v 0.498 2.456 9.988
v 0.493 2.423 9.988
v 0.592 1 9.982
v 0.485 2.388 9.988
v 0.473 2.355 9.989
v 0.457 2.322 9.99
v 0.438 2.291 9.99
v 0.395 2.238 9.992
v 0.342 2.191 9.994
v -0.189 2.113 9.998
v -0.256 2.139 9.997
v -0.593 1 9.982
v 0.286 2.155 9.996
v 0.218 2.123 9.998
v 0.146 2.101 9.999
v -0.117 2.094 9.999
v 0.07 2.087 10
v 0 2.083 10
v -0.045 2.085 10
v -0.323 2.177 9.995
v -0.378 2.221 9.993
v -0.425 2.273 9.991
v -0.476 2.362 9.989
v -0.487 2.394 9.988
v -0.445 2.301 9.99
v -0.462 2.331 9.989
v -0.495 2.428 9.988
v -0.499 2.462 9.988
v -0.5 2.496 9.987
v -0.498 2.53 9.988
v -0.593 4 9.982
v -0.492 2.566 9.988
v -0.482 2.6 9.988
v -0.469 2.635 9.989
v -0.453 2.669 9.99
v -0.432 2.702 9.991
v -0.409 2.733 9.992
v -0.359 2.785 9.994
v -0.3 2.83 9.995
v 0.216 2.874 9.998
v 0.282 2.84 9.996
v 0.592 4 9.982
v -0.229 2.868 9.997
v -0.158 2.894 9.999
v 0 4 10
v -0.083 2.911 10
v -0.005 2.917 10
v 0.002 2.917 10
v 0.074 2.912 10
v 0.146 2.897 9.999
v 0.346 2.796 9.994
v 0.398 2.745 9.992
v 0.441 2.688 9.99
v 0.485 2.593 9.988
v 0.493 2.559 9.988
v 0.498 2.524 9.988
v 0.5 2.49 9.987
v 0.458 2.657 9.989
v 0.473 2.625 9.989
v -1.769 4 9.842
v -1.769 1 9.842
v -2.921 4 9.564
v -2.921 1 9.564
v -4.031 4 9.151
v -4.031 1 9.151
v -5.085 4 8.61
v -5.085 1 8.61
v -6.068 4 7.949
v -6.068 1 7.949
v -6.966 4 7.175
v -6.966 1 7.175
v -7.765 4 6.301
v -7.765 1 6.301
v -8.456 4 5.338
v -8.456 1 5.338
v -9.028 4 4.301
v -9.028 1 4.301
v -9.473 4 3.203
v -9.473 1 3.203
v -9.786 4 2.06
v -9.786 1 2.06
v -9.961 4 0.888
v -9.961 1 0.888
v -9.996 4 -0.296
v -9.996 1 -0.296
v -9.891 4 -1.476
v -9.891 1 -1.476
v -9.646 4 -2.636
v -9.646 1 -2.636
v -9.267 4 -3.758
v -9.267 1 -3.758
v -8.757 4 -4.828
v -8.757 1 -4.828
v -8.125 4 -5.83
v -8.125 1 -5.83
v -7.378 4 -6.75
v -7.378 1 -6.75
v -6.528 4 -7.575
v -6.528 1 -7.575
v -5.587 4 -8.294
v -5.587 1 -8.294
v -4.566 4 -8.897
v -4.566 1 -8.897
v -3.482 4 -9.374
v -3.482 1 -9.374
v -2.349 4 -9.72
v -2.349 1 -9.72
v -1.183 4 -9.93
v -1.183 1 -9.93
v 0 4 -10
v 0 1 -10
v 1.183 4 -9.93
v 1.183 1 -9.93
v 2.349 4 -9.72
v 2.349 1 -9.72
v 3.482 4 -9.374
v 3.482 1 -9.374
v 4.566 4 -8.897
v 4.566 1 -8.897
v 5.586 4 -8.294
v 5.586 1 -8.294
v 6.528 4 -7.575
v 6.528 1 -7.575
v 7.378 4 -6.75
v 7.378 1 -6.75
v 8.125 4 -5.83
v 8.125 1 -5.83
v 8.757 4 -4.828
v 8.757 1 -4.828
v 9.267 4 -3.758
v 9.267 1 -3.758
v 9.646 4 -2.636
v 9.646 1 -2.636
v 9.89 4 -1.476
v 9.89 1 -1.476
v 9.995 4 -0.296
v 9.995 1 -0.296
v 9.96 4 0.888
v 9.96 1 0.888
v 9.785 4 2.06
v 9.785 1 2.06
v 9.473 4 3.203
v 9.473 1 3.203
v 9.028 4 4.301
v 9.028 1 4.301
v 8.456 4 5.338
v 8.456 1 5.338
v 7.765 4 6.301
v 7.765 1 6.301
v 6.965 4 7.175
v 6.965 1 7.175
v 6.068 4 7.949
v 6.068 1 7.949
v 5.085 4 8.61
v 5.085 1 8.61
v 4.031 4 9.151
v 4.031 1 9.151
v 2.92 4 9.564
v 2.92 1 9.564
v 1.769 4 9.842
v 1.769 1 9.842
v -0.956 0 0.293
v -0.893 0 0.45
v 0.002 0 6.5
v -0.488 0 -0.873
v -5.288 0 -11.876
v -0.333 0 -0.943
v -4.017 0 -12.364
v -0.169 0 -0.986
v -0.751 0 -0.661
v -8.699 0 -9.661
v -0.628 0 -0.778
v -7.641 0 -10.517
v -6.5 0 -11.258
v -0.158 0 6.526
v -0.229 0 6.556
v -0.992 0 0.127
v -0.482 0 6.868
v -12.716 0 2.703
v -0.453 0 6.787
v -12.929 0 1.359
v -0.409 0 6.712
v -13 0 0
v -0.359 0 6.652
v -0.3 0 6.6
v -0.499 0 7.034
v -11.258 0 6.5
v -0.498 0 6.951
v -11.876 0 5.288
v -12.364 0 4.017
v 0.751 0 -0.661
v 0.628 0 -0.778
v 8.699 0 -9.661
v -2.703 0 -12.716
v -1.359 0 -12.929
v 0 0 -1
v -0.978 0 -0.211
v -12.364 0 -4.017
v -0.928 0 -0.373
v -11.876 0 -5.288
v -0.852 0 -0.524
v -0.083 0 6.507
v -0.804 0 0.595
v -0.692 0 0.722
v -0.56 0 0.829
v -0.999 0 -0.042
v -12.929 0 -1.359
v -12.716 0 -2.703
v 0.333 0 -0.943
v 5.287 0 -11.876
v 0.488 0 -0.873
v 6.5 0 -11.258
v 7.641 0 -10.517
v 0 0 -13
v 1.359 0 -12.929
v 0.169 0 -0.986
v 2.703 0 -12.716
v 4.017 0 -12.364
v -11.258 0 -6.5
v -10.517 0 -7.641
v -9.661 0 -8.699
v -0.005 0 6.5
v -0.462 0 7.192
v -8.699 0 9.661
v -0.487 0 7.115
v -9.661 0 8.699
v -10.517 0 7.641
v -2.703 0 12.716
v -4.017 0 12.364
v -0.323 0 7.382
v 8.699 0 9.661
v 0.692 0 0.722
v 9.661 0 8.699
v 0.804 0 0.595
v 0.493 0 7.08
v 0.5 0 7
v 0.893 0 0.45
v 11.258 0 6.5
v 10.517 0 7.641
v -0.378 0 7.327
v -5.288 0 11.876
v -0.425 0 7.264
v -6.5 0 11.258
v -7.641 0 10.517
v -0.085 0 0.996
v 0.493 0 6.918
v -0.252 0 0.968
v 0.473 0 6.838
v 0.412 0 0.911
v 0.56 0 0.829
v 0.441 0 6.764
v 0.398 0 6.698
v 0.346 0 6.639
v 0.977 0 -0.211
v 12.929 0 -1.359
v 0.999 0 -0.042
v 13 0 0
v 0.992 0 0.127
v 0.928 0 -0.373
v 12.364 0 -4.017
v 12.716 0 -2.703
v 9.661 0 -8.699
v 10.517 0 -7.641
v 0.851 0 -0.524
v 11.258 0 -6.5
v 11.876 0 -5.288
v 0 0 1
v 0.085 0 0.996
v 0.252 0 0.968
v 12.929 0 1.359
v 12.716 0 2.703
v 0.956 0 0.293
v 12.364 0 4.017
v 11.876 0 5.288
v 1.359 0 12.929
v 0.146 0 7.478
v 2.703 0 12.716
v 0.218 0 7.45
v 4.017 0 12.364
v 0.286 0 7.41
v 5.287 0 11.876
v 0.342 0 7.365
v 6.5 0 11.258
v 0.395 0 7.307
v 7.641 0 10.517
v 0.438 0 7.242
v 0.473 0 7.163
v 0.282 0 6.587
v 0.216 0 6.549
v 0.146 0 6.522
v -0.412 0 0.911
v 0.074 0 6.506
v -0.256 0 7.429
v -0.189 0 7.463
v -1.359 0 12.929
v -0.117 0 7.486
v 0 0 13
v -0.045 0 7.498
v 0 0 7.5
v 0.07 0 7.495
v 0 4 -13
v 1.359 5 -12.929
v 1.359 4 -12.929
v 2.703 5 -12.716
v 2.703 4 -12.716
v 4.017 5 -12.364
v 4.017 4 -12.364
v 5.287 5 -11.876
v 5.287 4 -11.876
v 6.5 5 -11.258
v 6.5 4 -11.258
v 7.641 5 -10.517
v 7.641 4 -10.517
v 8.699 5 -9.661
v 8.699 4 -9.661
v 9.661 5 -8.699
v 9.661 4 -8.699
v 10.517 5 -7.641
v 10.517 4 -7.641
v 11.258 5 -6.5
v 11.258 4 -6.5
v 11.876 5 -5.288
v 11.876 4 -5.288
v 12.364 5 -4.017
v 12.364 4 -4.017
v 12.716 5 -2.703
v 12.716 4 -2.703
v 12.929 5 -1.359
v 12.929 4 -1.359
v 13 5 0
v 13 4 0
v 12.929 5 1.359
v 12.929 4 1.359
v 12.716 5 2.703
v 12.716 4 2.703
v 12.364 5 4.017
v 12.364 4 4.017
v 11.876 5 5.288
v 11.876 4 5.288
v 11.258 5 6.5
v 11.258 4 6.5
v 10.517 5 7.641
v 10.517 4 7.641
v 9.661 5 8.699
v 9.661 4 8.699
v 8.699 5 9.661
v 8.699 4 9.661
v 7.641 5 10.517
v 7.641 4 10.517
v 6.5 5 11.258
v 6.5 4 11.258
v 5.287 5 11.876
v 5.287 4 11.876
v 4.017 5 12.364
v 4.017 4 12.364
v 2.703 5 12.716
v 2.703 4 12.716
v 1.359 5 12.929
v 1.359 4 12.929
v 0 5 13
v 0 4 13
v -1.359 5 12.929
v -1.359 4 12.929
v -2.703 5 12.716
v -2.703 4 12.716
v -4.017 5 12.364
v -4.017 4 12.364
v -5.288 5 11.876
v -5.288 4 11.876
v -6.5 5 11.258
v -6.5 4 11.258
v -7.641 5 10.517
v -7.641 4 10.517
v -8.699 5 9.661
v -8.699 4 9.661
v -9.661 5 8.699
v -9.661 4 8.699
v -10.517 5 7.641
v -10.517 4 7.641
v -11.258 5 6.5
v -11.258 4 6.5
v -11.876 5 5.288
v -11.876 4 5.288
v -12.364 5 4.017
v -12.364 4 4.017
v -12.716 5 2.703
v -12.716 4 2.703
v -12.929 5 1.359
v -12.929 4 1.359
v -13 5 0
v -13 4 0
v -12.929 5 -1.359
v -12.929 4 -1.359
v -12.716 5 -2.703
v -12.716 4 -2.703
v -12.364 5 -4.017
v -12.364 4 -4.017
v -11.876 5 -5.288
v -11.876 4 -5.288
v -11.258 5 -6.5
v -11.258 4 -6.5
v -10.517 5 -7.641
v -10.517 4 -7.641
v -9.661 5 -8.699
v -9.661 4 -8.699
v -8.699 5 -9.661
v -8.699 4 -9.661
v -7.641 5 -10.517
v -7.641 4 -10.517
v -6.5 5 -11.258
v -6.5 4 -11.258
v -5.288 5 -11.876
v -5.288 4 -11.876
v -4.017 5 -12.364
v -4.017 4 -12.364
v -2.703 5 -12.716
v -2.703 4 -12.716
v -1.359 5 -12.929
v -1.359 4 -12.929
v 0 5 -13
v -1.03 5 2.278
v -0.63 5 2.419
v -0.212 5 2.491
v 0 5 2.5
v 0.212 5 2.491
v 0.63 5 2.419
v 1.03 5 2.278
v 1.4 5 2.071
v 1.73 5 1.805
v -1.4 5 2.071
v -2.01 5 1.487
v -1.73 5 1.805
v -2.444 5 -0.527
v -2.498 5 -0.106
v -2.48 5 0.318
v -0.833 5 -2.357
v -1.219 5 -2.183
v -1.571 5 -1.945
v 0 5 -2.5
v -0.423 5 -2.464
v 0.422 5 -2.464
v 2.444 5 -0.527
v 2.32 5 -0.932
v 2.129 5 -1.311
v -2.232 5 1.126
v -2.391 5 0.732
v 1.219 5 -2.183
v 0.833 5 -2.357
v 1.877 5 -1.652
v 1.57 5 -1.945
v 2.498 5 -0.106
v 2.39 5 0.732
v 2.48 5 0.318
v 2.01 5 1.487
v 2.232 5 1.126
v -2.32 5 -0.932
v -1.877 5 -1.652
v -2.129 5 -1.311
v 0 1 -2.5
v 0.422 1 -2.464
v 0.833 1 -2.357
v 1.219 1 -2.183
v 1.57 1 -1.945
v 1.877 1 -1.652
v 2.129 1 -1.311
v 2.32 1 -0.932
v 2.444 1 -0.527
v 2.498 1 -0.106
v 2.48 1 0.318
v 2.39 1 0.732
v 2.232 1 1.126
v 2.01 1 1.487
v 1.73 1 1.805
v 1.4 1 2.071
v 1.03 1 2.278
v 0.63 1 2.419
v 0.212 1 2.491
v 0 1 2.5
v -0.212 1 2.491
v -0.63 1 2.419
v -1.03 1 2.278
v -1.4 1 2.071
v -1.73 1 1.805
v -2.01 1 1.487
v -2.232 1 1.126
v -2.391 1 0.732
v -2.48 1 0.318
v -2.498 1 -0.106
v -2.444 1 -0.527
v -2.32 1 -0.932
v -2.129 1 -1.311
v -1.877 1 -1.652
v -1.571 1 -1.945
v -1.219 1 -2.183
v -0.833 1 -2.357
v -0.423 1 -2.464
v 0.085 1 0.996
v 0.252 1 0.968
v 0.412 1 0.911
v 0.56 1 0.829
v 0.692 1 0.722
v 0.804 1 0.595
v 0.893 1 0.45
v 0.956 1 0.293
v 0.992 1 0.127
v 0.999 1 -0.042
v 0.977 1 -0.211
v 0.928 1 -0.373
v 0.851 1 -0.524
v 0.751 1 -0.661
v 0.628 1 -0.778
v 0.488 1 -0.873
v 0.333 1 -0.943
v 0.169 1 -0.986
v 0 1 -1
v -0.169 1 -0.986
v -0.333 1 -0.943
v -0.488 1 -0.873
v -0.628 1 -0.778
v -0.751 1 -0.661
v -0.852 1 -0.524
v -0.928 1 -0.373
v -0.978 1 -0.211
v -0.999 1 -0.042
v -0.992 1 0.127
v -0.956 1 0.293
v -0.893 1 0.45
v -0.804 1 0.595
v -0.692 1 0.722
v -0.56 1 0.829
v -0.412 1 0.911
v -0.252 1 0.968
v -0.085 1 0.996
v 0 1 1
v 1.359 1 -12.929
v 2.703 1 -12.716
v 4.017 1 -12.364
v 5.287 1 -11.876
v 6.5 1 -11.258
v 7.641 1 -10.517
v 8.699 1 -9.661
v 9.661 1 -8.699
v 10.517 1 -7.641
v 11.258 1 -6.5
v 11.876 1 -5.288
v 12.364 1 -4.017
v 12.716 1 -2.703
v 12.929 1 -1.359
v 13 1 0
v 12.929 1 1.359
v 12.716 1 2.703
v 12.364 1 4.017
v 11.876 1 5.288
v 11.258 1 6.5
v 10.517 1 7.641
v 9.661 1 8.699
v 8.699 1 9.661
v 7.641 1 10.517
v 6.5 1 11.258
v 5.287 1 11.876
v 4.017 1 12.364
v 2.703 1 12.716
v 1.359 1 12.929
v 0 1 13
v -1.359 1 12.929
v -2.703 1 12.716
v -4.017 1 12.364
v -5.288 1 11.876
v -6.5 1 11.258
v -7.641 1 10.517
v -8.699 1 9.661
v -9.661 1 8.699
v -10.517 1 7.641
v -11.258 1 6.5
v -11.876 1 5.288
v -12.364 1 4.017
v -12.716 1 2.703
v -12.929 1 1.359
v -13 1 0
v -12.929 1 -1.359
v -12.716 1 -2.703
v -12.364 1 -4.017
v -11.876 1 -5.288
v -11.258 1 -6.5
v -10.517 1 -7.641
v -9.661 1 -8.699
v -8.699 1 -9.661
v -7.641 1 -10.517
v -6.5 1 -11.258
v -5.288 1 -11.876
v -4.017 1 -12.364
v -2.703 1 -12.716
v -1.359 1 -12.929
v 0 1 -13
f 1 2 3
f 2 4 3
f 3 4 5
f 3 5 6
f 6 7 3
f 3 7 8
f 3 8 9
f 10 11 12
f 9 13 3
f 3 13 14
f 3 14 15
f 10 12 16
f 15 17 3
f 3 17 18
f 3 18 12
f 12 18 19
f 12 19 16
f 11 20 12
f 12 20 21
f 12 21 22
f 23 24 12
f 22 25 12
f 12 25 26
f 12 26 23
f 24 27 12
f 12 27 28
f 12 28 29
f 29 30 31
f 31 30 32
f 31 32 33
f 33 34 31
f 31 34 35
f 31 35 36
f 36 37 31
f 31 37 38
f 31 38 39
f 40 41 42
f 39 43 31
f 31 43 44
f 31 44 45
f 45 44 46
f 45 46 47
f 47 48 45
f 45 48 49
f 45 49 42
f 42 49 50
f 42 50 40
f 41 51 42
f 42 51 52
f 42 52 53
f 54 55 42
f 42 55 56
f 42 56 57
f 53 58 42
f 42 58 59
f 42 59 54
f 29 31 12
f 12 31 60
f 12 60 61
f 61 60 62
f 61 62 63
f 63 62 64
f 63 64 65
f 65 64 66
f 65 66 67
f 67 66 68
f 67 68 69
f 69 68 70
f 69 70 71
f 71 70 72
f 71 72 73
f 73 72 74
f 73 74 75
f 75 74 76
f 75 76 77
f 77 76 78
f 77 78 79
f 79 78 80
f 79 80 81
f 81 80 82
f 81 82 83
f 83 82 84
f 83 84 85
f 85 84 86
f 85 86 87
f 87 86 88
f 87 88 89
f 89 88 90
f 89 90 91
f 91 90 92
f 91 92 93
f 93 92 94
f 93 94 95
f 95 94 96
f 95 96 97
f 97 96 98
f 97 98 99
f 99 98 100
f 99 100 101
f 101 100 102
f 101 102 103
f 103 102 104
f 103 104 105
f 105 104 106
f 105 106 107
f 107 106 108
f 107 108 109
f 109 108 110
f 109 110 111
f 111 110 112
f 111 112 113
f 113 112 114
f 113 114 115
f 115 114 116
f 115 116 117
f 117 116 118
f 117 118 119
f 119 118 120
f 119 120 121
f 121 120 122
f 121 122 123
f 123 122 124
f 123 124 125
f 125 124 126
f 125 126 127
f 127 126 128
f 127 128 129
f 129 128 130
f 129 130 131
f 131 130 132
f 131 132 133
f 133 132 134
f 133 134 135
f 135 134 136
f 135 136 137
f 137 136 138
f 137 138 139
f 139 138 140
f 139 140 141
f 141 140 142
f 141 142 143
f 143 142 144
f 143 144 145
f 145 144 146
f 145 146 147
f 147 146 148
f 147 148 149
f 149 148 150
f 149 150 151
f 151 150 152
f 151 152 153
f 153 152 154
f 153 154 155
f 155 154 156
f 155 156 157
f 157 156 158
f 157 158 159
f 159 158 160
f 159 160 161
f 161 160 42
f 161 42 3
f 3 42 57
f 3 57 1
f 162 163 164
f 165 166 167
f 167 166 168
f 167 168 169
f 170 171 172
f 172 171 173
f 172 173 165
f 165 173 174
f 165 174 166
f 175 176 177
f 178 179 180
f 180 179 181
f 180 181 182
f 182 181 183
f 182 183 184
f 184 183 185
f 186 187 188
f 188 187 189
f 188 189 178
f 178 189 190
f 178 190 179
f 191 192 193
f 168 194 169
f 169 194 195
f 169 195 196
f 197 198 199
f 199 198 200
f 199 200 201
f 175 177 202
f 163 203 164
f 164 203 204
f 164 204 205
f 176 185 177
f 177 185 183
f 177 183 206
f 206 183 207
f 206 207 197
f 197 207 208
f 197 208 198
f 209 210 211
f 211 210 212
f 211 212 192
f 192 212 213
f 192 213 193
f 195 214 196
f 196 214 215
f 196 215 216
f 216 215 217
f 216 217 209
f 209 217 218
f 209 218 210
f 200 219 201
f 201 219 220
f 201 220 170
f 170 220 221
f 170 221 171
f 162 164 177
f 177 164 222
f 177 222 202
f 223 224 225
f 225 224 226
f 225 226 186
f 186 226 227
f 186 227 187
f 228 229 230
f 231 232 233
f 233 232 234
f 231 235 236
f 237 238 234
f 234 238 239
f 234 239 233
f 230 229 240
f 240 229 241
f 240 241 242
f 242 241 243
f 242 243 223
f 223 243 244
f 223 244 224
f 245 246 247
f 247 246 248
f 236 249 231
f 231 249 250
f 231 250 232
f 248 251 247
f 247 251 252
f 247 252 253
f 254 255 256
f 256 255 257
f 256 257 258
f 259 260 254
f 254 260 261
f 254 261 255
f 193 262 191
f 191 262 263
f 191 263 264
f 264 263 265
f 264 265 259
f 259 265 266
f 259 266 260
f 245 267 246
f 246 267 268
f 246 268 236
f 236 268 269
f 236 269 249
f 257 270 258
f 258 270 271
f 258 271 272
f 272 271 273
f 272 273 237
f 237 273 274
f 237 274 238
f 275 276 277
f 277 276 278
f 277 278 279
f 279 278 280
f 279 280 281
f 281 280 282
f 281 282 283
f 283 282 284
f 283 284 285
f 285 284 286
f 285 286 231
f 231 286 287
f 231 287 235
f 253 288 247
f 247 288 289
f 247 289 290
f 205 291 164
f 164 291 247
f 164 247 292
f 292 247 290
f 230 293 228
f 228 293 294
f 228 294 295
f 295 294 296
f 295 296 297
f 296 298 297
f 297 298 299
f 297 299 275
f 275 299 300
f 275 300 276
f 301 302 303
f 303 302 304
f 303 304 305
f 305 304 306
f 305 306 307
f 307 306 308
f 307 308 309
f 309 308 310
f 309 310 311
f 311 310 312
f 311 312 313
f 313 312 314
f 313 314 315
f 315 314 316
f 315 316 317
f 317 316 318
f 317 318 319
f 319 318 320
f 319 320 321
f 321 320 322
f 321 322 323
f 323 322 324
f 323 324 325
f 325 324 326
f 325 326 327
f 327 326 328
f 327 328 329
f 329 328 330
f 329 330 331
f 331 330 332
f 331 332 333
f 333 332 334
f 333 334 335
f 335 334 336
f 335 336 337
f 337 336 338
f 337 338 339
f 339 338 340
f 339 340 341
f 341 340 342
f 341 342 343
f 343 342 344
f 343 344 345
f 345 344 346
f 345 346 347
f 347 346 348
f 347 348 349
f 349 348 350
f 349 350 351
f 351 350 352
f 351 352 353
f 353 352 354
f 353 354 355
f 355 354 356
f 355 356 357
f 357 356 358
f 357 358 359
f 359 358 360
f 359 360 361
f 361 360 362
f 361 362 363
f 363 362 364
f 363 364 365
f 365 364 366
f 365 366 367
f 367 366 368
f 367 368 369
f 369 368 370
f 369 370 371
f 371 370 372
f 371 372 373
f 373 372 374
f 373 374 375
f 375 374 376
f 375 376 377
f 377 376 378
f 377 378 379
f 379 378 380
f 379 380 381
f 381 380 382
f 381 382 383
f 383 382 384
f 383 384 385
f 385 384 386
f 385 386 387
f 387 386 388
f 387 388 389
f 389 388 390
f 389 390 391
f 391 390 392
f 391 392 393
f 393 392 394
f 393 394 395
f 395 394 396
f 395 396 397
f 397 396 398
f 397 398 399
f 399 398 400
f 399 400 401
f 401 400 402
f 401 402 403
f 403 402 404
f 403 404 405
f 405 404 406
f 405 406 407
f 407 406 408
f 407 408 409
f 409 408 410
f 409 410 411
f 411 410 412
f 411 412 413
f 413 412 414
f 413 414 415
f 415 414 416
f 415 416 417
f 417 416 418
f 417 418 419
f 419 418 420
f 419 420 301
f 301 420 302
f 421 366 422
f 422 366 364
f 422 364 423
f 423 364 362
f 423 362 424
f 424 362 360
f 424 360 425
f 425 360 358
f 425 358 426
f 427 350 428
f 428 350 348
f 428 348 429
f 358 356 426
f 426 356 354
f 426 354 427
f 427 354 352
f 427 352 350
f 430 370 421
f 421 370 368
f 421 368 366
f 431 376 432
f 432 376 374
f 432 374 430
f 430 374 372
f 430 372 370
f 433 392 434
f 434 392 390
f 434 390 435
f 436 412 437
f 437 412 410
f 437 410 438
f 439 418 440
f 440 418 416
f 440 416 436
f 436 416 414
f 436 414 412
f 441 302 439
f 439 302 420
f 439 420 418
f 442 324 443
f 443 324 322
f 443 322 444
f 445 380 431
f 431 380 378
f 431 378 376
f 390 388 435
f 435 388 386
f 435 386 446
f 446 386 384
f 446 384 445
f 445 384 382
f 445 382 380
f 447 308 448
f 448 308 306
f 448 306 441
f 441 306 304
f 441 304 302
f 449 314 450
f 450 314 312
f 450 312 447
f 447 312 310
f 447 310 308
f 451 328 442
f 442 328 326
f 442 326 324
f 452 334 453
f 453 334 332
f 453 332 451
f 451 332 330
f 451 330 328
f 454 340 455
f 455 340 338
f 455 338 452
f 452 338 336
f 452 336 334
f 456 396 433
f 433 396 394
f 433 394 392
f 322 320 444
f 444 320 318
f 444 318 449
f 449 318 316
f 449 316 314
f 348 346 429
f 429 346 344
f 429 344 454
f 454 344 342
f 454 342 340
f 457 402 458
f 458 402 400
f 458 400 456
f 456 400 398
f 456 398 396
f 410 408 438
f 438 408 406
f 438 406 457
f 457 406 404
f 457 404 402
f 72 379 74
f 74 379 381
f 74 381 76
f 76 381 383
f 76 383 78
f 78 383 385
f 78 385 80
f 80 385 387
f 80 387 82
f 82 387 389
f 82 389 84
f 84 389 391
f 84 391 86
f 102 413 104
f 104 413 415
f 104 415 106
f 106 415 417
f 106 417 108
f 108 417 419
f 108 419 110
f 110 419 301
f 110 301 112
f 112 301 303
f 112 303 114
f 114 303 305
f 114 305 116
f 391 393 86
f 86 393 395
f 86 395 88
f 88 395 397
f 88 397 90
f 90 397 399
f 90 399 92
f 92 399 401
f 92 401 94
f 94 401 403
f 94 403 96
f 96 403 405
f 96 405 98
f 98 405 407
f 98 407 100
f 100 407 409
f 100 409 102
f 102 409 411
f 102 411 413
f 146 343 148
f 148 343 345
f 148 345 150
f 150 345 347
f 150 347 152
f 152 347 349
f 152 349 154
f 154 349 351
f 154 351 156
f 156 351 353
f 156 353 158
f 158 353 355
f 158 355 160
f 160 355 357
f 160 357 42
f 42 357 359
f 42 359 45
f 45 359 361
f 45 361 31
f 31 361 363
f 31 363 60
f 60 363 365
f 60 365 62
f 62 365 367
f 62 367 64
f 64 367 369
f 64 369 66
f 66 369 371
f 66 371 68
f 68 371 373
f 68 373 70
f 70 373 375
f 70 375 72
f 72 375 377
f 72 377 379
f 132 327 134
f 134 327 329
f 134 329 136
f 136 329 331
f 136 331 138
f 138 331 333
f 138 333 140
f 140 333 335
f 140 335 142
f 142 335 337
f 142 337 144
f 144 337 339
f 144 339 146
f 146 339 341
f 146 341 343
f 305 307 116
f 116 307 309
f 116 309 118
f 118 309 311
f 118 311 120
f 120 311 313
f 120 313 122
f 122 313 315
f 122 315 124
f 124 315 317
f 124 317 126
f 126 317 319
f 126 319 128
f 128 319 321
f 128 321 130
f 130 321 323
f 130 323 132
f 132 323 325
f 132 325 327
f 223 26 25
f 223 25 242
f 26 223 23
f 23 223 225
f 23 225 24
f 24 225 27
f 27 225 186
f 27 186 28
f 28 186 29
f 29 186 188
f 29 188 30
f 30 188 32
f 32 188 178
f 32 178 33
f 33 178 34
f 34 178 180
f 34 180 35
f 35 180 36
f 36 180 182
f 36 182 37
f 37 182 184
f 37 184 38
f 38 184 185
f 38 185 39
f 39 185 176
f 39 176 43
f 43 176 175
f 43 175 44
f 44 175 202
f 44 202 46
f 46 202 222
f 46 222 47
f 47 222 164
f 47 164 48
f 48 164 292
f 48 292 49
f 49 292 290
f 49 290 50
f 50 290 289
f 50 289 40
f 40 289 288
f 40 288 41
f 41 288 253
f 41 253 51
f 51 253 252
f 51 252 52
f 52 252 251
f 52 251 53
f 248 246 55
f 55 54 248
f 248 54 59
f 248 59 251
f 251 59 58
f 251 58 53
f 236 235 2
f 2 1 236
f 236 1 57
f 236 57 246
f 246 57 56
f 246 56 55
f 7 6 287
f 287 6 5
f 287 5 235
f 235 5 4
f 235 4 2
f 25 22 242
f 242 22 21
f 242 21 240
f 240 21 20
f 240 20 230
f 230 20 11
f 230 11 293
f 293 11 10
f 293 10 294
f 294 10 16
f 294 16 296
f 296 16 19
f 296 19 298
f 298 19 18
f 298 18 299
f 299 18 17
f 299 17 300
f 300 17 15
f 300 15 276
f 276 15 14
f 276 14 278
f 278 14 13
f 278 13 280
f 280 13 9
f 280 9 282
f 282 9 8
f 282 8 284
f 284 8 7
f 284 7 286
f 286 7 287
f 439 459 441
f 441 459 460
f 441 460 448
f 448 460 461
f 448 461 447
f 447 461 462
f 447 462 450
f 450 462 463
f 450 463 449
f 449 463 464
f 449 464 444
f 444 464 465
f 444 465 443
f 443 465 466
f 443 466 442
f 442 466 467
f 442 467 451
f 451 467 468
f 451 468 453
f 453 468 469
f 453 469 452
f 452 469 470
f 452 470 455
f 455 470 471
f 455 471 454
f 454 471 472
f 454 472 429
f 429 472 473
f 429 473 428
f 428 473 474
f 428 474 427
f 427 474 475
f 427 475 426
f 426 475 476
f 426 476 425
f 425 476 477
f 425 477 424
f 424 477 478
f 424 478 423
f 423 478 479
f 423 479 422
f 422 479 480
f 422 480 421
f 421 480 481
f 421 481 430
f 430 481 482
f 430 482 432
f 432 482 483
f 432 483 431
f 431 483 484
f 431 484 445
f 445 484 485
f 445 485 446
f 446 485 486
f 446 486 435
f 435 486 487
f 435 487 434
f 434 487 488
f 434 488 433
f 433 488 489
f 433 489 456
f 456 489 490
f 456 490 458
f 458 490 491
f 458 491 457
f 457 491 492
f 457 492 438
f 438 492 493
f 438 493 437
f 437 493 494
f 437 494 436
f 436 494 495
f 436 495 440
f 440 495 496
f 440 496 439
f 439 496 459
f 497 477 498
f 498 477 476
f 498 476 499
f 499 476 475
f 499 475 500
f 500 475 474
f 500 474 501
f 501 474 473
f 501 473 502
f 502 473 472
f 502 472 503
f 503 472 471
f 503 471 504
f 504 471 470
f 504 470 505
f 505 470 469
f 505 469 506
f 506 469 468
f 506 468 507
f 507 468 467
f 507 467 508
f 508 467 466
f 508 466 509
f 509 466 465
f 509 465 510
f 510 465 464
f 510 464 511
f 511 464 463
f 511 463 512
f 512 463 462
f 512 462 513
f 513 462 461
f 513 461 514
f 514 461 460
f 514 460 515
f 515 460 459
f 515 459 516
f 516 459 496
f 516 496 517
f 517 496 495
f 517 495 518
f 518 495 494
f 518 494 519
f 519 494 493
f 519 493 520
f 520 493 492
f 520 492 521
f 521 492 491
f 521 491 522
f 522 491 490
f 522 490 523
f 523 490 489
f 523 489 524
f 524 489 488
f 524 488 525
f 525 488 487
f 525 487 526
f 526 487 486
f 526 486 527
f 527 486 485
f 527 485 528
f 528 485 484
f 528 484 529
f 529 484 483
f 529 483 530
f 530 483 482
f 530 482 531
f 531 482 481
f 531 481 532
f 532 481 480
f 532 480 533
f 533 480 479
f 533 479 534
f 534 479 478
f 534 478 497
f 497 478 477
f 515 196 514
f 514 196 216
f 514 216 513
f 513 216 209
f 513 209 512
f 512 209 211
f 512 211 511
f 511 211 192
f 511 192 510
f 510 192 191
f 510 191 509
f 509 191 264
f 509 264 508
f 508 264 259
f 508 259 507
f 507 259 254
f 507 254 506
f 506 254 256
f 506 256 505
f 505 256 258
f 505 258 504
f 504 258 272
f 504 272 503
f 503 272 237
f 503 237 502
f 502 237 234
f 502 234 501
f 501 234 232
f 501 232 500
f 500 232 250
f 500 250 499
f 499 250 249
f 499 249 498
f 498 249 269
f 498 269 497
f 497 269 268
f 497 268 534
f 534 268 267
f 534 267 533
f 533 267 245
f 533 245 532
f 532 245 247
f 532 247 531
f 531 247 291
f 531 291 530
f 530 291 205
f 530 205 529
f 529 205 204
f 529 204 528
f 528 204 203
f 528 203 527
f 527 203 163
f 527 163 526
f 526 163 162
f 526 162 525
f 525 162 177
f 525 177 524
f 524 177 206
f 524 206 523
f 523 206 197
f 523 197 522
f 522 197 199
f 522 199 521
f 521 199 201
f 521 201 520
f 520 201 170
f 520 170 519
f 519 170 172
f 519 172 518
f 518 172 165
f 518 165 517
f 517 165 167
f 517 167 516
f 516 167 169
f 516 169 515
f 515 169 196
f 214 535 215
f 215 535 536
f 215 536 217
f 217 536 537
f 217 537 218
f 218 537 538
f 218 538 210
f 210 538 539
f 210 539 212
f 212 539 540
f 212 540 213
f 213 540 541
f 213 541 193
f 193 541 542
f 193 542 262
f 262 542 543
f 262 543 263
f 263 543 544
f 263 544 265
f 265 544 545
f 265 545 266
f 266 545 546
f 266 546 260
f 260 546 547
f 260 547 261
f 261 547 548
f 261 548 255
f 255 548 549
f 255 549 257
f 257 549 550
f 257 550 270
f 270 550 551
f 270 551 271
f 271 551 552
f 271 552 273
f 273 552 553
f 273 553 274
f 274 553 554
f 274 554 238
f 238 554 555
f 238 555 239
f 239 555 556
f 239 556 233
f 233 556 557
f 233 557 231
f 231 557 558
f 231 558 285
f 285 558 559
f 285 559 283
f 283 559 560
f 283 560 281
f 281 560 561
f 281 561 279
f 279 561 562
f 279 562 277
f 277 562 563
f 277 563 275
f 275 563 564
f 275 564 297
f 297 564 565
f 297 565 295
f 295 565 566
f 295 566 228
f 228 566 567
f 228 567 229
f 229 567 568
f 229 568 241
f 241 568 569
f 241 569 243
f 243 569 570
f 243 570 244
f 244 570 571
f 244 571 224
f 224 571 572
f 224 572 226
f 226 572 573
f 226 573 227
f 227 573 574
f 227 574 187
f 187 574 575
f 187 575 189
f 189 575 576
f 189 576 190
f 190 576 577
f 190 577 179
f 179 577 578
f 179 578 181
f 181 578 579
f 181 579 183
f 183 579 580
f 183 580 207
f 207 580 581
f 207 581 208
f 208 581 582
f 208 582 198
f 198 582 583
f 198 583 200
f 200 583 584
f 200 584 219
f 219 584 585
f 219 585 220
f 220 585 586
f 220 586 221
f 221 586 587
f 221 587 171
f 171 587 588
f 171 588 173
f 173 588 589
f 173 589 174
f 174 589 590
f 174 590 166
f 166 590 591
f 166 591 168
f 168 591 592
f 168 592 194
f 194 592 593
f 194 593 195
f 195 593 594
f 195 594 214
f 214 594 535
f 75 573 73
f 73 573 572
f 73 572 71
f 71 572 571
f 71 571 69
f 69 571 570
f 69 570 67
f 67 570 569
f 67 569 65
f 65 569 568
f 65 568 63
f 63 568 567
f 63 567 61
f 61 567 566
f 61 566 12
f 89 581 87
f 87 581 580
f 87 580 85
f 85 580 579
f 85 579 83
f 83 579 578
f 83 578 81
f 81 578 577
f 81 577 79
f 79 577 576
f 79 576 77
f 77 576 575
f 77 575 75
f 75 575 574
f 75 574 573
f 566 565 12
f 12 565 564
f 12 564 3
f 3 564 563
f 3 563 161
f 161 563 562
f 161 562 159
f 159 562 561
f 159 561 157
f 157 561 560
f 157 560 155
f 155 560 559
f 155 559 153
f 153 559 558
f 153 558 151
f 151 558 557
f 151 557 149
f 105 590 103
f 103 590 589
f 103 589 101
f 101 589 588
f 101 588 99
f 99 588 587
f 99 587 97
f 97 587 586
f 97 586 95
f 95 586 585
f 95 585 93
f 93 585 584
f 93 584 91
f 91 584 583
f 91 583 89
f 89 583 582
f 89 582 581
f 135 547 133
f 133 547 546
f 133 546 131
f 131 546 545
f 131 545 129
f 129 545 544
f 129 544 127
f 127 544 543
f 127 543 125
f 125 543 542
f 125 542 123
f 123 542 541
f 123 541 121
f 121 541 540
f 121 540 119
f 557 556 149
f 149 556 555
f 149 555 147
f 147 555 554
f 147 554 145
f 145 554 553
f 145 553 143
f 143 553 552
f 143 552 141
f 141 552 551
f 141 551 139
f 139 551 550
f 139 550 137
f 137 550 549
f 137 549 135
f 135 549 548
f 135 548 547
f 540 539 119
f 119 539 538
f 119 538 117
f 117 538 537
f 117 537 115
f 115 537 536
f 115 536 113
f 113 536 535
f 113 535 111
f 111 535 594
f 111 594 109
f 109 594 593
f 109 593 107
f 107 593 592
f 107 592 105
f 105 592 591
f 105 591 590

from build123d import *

# Parameters (mm, degrees)
SKETCH1_R           = 10
BOSS_EXTRUDE1_DEPTH = 1
SKETCH2_R           = 10
BOSS_EXTRUDE2_DEPTH = 4
SKETCH4_R           = 13
BOSS_EXTRUDE3_DEPTH = 1
CUT_SWEEP1_START    = 4.993438222
CUT_SWEEP1_DEPTH    = 4.55597903
SKETCH9_R           = 2.5
CUT_EXTRUDE2_DEPTH  = 5
SKETCH10_R          = 2.5
SKETCH10_R_2        = 1
BOSS_EXTRUDE4_DEPTH = 1
SKETCH11_R          = 13
SKETCH11_R_2        = 10
BOSS_EXTRUDE5_DEPTH = 1


# Read off the part's stored shape, not the designer's step: Cut-Sweep1
with BuildPart() as part:
    # Sketch1 → Boss-Extrude1 (new body)
    with BuildSketch(Plane(origin=(0, 0, 0), x_dir=(1, 0, 0), z_dir=(0, 1, 0))):
        with Locations(Location((0, 0, 0), (0, 0, 270))):
            Circle(SKETCH1_R)
    extrude(amount=BOSS_EXTRUDE1_DEPTH)

    # Sketch2 → Boss-Extrude2 (add)
    with BuildSketch(Plane(origin=(0, 0, 0), x_dir=(1, 0, 0), z_dir=(0, 1, 0))):
        with Locations(Location((0, 0, 0), (0, 0, 270))):
            Circle(SKETCH2_R)
    extrude(amount=BOSS_EXTRUDE2_DEPTH)

    # Sketch4 → Boss-Extrude3 (add)
    with BuildSketch(Plane(origin=(0, 4, 0), x_dir=(1, 0, 0), z_dir=(0, 1, 0))):
        with Locations(Location((0, 0, 0), (0, 0, 270))):
            Circle(SKETCH4_R)
    extrude(amount=BOSS_EXTRUDE3_DEPTH)

    # Cut-Sweep1 outline → Cut-Sweep1 (cut)
    with BuildSketch(Plane(origin=(0, 0, 0), x_dir=(1, 0, 0), z_dir=(0, 0.6401843996644766, 0.7682212795973786)).offset(CUT_SWEEP1_START)):
        with BuildLine():
            add(Edge.make_bspline(
                [(0, -4.801382997), (1, -4.801382997), (1, -4.161198598), (0, -4.161198598), (-1, -4.161198598), (-1, -4.801382997), (0, -4.801382997)],
                knots=[0, 0, 0, 0, 0.5, 0.5, 0.5, 1, 1, 1, 1], degree=3, weights=[1, 0.333333333, 0.333333333, 1, 0.333333333, 0.333333333, 1]))
        make_face()
    extrude(amount=CUT_SWEEP1_DEPTH, mode=Mode.SUBTRACT)

    # Sketch9 → Cut-Extrude2 (cut)
    with BuildSketch(Plane(origin=(0, 0, 0), x_dir=(1, 0, 0), z_dir=(0, 1, 0))):
        with Locations(Location((0, 0, 0), (0, 0, 270))):
            Circle(SKETCH9_R)
    extrude(amount=CUT_EXTRUDE2_DEPTH, mode=Mode.SUBTRACT)

    # Sketch10 → Boss-Extrude4 (add)
    with BuildSketch(Plane(origin=(0, 0, 0), x_dir=(1, 0, 0), z_dir=(0, 1, 0))):
        with Locations(Location((0, 0, 0), (0, 0, 270))):
            Circle(SKETCH10_R)
        with Locations(Location((0, 0, 0), (0, 0, 270))):
            Circle(SKETCH10_R_2, mode=Mode.SUBTRACT)
    extrude(amount=BOSS_EXTRUDE4_DEPTH)

    # Sketch11 → Boss-Extrude5 (add)
    with BuildSketch(Plane(origin=(0, 0, 0), x_dir=(-1, 0, 0), z_dir=(0, -1, 0))):
        with Locations(Location((0, 0, 0), (0, 0, 270))):
            Circle(SKETCH11_R)
        with Locations(Location((0, 0, 0), (0, 0, 90))):
            Circle(SKETCH11_R_2, mode=Mode.SUBTRACT)
    extrude(amount=-BOSS_EXTRUDE5_DEPTH)


solid = part.part
